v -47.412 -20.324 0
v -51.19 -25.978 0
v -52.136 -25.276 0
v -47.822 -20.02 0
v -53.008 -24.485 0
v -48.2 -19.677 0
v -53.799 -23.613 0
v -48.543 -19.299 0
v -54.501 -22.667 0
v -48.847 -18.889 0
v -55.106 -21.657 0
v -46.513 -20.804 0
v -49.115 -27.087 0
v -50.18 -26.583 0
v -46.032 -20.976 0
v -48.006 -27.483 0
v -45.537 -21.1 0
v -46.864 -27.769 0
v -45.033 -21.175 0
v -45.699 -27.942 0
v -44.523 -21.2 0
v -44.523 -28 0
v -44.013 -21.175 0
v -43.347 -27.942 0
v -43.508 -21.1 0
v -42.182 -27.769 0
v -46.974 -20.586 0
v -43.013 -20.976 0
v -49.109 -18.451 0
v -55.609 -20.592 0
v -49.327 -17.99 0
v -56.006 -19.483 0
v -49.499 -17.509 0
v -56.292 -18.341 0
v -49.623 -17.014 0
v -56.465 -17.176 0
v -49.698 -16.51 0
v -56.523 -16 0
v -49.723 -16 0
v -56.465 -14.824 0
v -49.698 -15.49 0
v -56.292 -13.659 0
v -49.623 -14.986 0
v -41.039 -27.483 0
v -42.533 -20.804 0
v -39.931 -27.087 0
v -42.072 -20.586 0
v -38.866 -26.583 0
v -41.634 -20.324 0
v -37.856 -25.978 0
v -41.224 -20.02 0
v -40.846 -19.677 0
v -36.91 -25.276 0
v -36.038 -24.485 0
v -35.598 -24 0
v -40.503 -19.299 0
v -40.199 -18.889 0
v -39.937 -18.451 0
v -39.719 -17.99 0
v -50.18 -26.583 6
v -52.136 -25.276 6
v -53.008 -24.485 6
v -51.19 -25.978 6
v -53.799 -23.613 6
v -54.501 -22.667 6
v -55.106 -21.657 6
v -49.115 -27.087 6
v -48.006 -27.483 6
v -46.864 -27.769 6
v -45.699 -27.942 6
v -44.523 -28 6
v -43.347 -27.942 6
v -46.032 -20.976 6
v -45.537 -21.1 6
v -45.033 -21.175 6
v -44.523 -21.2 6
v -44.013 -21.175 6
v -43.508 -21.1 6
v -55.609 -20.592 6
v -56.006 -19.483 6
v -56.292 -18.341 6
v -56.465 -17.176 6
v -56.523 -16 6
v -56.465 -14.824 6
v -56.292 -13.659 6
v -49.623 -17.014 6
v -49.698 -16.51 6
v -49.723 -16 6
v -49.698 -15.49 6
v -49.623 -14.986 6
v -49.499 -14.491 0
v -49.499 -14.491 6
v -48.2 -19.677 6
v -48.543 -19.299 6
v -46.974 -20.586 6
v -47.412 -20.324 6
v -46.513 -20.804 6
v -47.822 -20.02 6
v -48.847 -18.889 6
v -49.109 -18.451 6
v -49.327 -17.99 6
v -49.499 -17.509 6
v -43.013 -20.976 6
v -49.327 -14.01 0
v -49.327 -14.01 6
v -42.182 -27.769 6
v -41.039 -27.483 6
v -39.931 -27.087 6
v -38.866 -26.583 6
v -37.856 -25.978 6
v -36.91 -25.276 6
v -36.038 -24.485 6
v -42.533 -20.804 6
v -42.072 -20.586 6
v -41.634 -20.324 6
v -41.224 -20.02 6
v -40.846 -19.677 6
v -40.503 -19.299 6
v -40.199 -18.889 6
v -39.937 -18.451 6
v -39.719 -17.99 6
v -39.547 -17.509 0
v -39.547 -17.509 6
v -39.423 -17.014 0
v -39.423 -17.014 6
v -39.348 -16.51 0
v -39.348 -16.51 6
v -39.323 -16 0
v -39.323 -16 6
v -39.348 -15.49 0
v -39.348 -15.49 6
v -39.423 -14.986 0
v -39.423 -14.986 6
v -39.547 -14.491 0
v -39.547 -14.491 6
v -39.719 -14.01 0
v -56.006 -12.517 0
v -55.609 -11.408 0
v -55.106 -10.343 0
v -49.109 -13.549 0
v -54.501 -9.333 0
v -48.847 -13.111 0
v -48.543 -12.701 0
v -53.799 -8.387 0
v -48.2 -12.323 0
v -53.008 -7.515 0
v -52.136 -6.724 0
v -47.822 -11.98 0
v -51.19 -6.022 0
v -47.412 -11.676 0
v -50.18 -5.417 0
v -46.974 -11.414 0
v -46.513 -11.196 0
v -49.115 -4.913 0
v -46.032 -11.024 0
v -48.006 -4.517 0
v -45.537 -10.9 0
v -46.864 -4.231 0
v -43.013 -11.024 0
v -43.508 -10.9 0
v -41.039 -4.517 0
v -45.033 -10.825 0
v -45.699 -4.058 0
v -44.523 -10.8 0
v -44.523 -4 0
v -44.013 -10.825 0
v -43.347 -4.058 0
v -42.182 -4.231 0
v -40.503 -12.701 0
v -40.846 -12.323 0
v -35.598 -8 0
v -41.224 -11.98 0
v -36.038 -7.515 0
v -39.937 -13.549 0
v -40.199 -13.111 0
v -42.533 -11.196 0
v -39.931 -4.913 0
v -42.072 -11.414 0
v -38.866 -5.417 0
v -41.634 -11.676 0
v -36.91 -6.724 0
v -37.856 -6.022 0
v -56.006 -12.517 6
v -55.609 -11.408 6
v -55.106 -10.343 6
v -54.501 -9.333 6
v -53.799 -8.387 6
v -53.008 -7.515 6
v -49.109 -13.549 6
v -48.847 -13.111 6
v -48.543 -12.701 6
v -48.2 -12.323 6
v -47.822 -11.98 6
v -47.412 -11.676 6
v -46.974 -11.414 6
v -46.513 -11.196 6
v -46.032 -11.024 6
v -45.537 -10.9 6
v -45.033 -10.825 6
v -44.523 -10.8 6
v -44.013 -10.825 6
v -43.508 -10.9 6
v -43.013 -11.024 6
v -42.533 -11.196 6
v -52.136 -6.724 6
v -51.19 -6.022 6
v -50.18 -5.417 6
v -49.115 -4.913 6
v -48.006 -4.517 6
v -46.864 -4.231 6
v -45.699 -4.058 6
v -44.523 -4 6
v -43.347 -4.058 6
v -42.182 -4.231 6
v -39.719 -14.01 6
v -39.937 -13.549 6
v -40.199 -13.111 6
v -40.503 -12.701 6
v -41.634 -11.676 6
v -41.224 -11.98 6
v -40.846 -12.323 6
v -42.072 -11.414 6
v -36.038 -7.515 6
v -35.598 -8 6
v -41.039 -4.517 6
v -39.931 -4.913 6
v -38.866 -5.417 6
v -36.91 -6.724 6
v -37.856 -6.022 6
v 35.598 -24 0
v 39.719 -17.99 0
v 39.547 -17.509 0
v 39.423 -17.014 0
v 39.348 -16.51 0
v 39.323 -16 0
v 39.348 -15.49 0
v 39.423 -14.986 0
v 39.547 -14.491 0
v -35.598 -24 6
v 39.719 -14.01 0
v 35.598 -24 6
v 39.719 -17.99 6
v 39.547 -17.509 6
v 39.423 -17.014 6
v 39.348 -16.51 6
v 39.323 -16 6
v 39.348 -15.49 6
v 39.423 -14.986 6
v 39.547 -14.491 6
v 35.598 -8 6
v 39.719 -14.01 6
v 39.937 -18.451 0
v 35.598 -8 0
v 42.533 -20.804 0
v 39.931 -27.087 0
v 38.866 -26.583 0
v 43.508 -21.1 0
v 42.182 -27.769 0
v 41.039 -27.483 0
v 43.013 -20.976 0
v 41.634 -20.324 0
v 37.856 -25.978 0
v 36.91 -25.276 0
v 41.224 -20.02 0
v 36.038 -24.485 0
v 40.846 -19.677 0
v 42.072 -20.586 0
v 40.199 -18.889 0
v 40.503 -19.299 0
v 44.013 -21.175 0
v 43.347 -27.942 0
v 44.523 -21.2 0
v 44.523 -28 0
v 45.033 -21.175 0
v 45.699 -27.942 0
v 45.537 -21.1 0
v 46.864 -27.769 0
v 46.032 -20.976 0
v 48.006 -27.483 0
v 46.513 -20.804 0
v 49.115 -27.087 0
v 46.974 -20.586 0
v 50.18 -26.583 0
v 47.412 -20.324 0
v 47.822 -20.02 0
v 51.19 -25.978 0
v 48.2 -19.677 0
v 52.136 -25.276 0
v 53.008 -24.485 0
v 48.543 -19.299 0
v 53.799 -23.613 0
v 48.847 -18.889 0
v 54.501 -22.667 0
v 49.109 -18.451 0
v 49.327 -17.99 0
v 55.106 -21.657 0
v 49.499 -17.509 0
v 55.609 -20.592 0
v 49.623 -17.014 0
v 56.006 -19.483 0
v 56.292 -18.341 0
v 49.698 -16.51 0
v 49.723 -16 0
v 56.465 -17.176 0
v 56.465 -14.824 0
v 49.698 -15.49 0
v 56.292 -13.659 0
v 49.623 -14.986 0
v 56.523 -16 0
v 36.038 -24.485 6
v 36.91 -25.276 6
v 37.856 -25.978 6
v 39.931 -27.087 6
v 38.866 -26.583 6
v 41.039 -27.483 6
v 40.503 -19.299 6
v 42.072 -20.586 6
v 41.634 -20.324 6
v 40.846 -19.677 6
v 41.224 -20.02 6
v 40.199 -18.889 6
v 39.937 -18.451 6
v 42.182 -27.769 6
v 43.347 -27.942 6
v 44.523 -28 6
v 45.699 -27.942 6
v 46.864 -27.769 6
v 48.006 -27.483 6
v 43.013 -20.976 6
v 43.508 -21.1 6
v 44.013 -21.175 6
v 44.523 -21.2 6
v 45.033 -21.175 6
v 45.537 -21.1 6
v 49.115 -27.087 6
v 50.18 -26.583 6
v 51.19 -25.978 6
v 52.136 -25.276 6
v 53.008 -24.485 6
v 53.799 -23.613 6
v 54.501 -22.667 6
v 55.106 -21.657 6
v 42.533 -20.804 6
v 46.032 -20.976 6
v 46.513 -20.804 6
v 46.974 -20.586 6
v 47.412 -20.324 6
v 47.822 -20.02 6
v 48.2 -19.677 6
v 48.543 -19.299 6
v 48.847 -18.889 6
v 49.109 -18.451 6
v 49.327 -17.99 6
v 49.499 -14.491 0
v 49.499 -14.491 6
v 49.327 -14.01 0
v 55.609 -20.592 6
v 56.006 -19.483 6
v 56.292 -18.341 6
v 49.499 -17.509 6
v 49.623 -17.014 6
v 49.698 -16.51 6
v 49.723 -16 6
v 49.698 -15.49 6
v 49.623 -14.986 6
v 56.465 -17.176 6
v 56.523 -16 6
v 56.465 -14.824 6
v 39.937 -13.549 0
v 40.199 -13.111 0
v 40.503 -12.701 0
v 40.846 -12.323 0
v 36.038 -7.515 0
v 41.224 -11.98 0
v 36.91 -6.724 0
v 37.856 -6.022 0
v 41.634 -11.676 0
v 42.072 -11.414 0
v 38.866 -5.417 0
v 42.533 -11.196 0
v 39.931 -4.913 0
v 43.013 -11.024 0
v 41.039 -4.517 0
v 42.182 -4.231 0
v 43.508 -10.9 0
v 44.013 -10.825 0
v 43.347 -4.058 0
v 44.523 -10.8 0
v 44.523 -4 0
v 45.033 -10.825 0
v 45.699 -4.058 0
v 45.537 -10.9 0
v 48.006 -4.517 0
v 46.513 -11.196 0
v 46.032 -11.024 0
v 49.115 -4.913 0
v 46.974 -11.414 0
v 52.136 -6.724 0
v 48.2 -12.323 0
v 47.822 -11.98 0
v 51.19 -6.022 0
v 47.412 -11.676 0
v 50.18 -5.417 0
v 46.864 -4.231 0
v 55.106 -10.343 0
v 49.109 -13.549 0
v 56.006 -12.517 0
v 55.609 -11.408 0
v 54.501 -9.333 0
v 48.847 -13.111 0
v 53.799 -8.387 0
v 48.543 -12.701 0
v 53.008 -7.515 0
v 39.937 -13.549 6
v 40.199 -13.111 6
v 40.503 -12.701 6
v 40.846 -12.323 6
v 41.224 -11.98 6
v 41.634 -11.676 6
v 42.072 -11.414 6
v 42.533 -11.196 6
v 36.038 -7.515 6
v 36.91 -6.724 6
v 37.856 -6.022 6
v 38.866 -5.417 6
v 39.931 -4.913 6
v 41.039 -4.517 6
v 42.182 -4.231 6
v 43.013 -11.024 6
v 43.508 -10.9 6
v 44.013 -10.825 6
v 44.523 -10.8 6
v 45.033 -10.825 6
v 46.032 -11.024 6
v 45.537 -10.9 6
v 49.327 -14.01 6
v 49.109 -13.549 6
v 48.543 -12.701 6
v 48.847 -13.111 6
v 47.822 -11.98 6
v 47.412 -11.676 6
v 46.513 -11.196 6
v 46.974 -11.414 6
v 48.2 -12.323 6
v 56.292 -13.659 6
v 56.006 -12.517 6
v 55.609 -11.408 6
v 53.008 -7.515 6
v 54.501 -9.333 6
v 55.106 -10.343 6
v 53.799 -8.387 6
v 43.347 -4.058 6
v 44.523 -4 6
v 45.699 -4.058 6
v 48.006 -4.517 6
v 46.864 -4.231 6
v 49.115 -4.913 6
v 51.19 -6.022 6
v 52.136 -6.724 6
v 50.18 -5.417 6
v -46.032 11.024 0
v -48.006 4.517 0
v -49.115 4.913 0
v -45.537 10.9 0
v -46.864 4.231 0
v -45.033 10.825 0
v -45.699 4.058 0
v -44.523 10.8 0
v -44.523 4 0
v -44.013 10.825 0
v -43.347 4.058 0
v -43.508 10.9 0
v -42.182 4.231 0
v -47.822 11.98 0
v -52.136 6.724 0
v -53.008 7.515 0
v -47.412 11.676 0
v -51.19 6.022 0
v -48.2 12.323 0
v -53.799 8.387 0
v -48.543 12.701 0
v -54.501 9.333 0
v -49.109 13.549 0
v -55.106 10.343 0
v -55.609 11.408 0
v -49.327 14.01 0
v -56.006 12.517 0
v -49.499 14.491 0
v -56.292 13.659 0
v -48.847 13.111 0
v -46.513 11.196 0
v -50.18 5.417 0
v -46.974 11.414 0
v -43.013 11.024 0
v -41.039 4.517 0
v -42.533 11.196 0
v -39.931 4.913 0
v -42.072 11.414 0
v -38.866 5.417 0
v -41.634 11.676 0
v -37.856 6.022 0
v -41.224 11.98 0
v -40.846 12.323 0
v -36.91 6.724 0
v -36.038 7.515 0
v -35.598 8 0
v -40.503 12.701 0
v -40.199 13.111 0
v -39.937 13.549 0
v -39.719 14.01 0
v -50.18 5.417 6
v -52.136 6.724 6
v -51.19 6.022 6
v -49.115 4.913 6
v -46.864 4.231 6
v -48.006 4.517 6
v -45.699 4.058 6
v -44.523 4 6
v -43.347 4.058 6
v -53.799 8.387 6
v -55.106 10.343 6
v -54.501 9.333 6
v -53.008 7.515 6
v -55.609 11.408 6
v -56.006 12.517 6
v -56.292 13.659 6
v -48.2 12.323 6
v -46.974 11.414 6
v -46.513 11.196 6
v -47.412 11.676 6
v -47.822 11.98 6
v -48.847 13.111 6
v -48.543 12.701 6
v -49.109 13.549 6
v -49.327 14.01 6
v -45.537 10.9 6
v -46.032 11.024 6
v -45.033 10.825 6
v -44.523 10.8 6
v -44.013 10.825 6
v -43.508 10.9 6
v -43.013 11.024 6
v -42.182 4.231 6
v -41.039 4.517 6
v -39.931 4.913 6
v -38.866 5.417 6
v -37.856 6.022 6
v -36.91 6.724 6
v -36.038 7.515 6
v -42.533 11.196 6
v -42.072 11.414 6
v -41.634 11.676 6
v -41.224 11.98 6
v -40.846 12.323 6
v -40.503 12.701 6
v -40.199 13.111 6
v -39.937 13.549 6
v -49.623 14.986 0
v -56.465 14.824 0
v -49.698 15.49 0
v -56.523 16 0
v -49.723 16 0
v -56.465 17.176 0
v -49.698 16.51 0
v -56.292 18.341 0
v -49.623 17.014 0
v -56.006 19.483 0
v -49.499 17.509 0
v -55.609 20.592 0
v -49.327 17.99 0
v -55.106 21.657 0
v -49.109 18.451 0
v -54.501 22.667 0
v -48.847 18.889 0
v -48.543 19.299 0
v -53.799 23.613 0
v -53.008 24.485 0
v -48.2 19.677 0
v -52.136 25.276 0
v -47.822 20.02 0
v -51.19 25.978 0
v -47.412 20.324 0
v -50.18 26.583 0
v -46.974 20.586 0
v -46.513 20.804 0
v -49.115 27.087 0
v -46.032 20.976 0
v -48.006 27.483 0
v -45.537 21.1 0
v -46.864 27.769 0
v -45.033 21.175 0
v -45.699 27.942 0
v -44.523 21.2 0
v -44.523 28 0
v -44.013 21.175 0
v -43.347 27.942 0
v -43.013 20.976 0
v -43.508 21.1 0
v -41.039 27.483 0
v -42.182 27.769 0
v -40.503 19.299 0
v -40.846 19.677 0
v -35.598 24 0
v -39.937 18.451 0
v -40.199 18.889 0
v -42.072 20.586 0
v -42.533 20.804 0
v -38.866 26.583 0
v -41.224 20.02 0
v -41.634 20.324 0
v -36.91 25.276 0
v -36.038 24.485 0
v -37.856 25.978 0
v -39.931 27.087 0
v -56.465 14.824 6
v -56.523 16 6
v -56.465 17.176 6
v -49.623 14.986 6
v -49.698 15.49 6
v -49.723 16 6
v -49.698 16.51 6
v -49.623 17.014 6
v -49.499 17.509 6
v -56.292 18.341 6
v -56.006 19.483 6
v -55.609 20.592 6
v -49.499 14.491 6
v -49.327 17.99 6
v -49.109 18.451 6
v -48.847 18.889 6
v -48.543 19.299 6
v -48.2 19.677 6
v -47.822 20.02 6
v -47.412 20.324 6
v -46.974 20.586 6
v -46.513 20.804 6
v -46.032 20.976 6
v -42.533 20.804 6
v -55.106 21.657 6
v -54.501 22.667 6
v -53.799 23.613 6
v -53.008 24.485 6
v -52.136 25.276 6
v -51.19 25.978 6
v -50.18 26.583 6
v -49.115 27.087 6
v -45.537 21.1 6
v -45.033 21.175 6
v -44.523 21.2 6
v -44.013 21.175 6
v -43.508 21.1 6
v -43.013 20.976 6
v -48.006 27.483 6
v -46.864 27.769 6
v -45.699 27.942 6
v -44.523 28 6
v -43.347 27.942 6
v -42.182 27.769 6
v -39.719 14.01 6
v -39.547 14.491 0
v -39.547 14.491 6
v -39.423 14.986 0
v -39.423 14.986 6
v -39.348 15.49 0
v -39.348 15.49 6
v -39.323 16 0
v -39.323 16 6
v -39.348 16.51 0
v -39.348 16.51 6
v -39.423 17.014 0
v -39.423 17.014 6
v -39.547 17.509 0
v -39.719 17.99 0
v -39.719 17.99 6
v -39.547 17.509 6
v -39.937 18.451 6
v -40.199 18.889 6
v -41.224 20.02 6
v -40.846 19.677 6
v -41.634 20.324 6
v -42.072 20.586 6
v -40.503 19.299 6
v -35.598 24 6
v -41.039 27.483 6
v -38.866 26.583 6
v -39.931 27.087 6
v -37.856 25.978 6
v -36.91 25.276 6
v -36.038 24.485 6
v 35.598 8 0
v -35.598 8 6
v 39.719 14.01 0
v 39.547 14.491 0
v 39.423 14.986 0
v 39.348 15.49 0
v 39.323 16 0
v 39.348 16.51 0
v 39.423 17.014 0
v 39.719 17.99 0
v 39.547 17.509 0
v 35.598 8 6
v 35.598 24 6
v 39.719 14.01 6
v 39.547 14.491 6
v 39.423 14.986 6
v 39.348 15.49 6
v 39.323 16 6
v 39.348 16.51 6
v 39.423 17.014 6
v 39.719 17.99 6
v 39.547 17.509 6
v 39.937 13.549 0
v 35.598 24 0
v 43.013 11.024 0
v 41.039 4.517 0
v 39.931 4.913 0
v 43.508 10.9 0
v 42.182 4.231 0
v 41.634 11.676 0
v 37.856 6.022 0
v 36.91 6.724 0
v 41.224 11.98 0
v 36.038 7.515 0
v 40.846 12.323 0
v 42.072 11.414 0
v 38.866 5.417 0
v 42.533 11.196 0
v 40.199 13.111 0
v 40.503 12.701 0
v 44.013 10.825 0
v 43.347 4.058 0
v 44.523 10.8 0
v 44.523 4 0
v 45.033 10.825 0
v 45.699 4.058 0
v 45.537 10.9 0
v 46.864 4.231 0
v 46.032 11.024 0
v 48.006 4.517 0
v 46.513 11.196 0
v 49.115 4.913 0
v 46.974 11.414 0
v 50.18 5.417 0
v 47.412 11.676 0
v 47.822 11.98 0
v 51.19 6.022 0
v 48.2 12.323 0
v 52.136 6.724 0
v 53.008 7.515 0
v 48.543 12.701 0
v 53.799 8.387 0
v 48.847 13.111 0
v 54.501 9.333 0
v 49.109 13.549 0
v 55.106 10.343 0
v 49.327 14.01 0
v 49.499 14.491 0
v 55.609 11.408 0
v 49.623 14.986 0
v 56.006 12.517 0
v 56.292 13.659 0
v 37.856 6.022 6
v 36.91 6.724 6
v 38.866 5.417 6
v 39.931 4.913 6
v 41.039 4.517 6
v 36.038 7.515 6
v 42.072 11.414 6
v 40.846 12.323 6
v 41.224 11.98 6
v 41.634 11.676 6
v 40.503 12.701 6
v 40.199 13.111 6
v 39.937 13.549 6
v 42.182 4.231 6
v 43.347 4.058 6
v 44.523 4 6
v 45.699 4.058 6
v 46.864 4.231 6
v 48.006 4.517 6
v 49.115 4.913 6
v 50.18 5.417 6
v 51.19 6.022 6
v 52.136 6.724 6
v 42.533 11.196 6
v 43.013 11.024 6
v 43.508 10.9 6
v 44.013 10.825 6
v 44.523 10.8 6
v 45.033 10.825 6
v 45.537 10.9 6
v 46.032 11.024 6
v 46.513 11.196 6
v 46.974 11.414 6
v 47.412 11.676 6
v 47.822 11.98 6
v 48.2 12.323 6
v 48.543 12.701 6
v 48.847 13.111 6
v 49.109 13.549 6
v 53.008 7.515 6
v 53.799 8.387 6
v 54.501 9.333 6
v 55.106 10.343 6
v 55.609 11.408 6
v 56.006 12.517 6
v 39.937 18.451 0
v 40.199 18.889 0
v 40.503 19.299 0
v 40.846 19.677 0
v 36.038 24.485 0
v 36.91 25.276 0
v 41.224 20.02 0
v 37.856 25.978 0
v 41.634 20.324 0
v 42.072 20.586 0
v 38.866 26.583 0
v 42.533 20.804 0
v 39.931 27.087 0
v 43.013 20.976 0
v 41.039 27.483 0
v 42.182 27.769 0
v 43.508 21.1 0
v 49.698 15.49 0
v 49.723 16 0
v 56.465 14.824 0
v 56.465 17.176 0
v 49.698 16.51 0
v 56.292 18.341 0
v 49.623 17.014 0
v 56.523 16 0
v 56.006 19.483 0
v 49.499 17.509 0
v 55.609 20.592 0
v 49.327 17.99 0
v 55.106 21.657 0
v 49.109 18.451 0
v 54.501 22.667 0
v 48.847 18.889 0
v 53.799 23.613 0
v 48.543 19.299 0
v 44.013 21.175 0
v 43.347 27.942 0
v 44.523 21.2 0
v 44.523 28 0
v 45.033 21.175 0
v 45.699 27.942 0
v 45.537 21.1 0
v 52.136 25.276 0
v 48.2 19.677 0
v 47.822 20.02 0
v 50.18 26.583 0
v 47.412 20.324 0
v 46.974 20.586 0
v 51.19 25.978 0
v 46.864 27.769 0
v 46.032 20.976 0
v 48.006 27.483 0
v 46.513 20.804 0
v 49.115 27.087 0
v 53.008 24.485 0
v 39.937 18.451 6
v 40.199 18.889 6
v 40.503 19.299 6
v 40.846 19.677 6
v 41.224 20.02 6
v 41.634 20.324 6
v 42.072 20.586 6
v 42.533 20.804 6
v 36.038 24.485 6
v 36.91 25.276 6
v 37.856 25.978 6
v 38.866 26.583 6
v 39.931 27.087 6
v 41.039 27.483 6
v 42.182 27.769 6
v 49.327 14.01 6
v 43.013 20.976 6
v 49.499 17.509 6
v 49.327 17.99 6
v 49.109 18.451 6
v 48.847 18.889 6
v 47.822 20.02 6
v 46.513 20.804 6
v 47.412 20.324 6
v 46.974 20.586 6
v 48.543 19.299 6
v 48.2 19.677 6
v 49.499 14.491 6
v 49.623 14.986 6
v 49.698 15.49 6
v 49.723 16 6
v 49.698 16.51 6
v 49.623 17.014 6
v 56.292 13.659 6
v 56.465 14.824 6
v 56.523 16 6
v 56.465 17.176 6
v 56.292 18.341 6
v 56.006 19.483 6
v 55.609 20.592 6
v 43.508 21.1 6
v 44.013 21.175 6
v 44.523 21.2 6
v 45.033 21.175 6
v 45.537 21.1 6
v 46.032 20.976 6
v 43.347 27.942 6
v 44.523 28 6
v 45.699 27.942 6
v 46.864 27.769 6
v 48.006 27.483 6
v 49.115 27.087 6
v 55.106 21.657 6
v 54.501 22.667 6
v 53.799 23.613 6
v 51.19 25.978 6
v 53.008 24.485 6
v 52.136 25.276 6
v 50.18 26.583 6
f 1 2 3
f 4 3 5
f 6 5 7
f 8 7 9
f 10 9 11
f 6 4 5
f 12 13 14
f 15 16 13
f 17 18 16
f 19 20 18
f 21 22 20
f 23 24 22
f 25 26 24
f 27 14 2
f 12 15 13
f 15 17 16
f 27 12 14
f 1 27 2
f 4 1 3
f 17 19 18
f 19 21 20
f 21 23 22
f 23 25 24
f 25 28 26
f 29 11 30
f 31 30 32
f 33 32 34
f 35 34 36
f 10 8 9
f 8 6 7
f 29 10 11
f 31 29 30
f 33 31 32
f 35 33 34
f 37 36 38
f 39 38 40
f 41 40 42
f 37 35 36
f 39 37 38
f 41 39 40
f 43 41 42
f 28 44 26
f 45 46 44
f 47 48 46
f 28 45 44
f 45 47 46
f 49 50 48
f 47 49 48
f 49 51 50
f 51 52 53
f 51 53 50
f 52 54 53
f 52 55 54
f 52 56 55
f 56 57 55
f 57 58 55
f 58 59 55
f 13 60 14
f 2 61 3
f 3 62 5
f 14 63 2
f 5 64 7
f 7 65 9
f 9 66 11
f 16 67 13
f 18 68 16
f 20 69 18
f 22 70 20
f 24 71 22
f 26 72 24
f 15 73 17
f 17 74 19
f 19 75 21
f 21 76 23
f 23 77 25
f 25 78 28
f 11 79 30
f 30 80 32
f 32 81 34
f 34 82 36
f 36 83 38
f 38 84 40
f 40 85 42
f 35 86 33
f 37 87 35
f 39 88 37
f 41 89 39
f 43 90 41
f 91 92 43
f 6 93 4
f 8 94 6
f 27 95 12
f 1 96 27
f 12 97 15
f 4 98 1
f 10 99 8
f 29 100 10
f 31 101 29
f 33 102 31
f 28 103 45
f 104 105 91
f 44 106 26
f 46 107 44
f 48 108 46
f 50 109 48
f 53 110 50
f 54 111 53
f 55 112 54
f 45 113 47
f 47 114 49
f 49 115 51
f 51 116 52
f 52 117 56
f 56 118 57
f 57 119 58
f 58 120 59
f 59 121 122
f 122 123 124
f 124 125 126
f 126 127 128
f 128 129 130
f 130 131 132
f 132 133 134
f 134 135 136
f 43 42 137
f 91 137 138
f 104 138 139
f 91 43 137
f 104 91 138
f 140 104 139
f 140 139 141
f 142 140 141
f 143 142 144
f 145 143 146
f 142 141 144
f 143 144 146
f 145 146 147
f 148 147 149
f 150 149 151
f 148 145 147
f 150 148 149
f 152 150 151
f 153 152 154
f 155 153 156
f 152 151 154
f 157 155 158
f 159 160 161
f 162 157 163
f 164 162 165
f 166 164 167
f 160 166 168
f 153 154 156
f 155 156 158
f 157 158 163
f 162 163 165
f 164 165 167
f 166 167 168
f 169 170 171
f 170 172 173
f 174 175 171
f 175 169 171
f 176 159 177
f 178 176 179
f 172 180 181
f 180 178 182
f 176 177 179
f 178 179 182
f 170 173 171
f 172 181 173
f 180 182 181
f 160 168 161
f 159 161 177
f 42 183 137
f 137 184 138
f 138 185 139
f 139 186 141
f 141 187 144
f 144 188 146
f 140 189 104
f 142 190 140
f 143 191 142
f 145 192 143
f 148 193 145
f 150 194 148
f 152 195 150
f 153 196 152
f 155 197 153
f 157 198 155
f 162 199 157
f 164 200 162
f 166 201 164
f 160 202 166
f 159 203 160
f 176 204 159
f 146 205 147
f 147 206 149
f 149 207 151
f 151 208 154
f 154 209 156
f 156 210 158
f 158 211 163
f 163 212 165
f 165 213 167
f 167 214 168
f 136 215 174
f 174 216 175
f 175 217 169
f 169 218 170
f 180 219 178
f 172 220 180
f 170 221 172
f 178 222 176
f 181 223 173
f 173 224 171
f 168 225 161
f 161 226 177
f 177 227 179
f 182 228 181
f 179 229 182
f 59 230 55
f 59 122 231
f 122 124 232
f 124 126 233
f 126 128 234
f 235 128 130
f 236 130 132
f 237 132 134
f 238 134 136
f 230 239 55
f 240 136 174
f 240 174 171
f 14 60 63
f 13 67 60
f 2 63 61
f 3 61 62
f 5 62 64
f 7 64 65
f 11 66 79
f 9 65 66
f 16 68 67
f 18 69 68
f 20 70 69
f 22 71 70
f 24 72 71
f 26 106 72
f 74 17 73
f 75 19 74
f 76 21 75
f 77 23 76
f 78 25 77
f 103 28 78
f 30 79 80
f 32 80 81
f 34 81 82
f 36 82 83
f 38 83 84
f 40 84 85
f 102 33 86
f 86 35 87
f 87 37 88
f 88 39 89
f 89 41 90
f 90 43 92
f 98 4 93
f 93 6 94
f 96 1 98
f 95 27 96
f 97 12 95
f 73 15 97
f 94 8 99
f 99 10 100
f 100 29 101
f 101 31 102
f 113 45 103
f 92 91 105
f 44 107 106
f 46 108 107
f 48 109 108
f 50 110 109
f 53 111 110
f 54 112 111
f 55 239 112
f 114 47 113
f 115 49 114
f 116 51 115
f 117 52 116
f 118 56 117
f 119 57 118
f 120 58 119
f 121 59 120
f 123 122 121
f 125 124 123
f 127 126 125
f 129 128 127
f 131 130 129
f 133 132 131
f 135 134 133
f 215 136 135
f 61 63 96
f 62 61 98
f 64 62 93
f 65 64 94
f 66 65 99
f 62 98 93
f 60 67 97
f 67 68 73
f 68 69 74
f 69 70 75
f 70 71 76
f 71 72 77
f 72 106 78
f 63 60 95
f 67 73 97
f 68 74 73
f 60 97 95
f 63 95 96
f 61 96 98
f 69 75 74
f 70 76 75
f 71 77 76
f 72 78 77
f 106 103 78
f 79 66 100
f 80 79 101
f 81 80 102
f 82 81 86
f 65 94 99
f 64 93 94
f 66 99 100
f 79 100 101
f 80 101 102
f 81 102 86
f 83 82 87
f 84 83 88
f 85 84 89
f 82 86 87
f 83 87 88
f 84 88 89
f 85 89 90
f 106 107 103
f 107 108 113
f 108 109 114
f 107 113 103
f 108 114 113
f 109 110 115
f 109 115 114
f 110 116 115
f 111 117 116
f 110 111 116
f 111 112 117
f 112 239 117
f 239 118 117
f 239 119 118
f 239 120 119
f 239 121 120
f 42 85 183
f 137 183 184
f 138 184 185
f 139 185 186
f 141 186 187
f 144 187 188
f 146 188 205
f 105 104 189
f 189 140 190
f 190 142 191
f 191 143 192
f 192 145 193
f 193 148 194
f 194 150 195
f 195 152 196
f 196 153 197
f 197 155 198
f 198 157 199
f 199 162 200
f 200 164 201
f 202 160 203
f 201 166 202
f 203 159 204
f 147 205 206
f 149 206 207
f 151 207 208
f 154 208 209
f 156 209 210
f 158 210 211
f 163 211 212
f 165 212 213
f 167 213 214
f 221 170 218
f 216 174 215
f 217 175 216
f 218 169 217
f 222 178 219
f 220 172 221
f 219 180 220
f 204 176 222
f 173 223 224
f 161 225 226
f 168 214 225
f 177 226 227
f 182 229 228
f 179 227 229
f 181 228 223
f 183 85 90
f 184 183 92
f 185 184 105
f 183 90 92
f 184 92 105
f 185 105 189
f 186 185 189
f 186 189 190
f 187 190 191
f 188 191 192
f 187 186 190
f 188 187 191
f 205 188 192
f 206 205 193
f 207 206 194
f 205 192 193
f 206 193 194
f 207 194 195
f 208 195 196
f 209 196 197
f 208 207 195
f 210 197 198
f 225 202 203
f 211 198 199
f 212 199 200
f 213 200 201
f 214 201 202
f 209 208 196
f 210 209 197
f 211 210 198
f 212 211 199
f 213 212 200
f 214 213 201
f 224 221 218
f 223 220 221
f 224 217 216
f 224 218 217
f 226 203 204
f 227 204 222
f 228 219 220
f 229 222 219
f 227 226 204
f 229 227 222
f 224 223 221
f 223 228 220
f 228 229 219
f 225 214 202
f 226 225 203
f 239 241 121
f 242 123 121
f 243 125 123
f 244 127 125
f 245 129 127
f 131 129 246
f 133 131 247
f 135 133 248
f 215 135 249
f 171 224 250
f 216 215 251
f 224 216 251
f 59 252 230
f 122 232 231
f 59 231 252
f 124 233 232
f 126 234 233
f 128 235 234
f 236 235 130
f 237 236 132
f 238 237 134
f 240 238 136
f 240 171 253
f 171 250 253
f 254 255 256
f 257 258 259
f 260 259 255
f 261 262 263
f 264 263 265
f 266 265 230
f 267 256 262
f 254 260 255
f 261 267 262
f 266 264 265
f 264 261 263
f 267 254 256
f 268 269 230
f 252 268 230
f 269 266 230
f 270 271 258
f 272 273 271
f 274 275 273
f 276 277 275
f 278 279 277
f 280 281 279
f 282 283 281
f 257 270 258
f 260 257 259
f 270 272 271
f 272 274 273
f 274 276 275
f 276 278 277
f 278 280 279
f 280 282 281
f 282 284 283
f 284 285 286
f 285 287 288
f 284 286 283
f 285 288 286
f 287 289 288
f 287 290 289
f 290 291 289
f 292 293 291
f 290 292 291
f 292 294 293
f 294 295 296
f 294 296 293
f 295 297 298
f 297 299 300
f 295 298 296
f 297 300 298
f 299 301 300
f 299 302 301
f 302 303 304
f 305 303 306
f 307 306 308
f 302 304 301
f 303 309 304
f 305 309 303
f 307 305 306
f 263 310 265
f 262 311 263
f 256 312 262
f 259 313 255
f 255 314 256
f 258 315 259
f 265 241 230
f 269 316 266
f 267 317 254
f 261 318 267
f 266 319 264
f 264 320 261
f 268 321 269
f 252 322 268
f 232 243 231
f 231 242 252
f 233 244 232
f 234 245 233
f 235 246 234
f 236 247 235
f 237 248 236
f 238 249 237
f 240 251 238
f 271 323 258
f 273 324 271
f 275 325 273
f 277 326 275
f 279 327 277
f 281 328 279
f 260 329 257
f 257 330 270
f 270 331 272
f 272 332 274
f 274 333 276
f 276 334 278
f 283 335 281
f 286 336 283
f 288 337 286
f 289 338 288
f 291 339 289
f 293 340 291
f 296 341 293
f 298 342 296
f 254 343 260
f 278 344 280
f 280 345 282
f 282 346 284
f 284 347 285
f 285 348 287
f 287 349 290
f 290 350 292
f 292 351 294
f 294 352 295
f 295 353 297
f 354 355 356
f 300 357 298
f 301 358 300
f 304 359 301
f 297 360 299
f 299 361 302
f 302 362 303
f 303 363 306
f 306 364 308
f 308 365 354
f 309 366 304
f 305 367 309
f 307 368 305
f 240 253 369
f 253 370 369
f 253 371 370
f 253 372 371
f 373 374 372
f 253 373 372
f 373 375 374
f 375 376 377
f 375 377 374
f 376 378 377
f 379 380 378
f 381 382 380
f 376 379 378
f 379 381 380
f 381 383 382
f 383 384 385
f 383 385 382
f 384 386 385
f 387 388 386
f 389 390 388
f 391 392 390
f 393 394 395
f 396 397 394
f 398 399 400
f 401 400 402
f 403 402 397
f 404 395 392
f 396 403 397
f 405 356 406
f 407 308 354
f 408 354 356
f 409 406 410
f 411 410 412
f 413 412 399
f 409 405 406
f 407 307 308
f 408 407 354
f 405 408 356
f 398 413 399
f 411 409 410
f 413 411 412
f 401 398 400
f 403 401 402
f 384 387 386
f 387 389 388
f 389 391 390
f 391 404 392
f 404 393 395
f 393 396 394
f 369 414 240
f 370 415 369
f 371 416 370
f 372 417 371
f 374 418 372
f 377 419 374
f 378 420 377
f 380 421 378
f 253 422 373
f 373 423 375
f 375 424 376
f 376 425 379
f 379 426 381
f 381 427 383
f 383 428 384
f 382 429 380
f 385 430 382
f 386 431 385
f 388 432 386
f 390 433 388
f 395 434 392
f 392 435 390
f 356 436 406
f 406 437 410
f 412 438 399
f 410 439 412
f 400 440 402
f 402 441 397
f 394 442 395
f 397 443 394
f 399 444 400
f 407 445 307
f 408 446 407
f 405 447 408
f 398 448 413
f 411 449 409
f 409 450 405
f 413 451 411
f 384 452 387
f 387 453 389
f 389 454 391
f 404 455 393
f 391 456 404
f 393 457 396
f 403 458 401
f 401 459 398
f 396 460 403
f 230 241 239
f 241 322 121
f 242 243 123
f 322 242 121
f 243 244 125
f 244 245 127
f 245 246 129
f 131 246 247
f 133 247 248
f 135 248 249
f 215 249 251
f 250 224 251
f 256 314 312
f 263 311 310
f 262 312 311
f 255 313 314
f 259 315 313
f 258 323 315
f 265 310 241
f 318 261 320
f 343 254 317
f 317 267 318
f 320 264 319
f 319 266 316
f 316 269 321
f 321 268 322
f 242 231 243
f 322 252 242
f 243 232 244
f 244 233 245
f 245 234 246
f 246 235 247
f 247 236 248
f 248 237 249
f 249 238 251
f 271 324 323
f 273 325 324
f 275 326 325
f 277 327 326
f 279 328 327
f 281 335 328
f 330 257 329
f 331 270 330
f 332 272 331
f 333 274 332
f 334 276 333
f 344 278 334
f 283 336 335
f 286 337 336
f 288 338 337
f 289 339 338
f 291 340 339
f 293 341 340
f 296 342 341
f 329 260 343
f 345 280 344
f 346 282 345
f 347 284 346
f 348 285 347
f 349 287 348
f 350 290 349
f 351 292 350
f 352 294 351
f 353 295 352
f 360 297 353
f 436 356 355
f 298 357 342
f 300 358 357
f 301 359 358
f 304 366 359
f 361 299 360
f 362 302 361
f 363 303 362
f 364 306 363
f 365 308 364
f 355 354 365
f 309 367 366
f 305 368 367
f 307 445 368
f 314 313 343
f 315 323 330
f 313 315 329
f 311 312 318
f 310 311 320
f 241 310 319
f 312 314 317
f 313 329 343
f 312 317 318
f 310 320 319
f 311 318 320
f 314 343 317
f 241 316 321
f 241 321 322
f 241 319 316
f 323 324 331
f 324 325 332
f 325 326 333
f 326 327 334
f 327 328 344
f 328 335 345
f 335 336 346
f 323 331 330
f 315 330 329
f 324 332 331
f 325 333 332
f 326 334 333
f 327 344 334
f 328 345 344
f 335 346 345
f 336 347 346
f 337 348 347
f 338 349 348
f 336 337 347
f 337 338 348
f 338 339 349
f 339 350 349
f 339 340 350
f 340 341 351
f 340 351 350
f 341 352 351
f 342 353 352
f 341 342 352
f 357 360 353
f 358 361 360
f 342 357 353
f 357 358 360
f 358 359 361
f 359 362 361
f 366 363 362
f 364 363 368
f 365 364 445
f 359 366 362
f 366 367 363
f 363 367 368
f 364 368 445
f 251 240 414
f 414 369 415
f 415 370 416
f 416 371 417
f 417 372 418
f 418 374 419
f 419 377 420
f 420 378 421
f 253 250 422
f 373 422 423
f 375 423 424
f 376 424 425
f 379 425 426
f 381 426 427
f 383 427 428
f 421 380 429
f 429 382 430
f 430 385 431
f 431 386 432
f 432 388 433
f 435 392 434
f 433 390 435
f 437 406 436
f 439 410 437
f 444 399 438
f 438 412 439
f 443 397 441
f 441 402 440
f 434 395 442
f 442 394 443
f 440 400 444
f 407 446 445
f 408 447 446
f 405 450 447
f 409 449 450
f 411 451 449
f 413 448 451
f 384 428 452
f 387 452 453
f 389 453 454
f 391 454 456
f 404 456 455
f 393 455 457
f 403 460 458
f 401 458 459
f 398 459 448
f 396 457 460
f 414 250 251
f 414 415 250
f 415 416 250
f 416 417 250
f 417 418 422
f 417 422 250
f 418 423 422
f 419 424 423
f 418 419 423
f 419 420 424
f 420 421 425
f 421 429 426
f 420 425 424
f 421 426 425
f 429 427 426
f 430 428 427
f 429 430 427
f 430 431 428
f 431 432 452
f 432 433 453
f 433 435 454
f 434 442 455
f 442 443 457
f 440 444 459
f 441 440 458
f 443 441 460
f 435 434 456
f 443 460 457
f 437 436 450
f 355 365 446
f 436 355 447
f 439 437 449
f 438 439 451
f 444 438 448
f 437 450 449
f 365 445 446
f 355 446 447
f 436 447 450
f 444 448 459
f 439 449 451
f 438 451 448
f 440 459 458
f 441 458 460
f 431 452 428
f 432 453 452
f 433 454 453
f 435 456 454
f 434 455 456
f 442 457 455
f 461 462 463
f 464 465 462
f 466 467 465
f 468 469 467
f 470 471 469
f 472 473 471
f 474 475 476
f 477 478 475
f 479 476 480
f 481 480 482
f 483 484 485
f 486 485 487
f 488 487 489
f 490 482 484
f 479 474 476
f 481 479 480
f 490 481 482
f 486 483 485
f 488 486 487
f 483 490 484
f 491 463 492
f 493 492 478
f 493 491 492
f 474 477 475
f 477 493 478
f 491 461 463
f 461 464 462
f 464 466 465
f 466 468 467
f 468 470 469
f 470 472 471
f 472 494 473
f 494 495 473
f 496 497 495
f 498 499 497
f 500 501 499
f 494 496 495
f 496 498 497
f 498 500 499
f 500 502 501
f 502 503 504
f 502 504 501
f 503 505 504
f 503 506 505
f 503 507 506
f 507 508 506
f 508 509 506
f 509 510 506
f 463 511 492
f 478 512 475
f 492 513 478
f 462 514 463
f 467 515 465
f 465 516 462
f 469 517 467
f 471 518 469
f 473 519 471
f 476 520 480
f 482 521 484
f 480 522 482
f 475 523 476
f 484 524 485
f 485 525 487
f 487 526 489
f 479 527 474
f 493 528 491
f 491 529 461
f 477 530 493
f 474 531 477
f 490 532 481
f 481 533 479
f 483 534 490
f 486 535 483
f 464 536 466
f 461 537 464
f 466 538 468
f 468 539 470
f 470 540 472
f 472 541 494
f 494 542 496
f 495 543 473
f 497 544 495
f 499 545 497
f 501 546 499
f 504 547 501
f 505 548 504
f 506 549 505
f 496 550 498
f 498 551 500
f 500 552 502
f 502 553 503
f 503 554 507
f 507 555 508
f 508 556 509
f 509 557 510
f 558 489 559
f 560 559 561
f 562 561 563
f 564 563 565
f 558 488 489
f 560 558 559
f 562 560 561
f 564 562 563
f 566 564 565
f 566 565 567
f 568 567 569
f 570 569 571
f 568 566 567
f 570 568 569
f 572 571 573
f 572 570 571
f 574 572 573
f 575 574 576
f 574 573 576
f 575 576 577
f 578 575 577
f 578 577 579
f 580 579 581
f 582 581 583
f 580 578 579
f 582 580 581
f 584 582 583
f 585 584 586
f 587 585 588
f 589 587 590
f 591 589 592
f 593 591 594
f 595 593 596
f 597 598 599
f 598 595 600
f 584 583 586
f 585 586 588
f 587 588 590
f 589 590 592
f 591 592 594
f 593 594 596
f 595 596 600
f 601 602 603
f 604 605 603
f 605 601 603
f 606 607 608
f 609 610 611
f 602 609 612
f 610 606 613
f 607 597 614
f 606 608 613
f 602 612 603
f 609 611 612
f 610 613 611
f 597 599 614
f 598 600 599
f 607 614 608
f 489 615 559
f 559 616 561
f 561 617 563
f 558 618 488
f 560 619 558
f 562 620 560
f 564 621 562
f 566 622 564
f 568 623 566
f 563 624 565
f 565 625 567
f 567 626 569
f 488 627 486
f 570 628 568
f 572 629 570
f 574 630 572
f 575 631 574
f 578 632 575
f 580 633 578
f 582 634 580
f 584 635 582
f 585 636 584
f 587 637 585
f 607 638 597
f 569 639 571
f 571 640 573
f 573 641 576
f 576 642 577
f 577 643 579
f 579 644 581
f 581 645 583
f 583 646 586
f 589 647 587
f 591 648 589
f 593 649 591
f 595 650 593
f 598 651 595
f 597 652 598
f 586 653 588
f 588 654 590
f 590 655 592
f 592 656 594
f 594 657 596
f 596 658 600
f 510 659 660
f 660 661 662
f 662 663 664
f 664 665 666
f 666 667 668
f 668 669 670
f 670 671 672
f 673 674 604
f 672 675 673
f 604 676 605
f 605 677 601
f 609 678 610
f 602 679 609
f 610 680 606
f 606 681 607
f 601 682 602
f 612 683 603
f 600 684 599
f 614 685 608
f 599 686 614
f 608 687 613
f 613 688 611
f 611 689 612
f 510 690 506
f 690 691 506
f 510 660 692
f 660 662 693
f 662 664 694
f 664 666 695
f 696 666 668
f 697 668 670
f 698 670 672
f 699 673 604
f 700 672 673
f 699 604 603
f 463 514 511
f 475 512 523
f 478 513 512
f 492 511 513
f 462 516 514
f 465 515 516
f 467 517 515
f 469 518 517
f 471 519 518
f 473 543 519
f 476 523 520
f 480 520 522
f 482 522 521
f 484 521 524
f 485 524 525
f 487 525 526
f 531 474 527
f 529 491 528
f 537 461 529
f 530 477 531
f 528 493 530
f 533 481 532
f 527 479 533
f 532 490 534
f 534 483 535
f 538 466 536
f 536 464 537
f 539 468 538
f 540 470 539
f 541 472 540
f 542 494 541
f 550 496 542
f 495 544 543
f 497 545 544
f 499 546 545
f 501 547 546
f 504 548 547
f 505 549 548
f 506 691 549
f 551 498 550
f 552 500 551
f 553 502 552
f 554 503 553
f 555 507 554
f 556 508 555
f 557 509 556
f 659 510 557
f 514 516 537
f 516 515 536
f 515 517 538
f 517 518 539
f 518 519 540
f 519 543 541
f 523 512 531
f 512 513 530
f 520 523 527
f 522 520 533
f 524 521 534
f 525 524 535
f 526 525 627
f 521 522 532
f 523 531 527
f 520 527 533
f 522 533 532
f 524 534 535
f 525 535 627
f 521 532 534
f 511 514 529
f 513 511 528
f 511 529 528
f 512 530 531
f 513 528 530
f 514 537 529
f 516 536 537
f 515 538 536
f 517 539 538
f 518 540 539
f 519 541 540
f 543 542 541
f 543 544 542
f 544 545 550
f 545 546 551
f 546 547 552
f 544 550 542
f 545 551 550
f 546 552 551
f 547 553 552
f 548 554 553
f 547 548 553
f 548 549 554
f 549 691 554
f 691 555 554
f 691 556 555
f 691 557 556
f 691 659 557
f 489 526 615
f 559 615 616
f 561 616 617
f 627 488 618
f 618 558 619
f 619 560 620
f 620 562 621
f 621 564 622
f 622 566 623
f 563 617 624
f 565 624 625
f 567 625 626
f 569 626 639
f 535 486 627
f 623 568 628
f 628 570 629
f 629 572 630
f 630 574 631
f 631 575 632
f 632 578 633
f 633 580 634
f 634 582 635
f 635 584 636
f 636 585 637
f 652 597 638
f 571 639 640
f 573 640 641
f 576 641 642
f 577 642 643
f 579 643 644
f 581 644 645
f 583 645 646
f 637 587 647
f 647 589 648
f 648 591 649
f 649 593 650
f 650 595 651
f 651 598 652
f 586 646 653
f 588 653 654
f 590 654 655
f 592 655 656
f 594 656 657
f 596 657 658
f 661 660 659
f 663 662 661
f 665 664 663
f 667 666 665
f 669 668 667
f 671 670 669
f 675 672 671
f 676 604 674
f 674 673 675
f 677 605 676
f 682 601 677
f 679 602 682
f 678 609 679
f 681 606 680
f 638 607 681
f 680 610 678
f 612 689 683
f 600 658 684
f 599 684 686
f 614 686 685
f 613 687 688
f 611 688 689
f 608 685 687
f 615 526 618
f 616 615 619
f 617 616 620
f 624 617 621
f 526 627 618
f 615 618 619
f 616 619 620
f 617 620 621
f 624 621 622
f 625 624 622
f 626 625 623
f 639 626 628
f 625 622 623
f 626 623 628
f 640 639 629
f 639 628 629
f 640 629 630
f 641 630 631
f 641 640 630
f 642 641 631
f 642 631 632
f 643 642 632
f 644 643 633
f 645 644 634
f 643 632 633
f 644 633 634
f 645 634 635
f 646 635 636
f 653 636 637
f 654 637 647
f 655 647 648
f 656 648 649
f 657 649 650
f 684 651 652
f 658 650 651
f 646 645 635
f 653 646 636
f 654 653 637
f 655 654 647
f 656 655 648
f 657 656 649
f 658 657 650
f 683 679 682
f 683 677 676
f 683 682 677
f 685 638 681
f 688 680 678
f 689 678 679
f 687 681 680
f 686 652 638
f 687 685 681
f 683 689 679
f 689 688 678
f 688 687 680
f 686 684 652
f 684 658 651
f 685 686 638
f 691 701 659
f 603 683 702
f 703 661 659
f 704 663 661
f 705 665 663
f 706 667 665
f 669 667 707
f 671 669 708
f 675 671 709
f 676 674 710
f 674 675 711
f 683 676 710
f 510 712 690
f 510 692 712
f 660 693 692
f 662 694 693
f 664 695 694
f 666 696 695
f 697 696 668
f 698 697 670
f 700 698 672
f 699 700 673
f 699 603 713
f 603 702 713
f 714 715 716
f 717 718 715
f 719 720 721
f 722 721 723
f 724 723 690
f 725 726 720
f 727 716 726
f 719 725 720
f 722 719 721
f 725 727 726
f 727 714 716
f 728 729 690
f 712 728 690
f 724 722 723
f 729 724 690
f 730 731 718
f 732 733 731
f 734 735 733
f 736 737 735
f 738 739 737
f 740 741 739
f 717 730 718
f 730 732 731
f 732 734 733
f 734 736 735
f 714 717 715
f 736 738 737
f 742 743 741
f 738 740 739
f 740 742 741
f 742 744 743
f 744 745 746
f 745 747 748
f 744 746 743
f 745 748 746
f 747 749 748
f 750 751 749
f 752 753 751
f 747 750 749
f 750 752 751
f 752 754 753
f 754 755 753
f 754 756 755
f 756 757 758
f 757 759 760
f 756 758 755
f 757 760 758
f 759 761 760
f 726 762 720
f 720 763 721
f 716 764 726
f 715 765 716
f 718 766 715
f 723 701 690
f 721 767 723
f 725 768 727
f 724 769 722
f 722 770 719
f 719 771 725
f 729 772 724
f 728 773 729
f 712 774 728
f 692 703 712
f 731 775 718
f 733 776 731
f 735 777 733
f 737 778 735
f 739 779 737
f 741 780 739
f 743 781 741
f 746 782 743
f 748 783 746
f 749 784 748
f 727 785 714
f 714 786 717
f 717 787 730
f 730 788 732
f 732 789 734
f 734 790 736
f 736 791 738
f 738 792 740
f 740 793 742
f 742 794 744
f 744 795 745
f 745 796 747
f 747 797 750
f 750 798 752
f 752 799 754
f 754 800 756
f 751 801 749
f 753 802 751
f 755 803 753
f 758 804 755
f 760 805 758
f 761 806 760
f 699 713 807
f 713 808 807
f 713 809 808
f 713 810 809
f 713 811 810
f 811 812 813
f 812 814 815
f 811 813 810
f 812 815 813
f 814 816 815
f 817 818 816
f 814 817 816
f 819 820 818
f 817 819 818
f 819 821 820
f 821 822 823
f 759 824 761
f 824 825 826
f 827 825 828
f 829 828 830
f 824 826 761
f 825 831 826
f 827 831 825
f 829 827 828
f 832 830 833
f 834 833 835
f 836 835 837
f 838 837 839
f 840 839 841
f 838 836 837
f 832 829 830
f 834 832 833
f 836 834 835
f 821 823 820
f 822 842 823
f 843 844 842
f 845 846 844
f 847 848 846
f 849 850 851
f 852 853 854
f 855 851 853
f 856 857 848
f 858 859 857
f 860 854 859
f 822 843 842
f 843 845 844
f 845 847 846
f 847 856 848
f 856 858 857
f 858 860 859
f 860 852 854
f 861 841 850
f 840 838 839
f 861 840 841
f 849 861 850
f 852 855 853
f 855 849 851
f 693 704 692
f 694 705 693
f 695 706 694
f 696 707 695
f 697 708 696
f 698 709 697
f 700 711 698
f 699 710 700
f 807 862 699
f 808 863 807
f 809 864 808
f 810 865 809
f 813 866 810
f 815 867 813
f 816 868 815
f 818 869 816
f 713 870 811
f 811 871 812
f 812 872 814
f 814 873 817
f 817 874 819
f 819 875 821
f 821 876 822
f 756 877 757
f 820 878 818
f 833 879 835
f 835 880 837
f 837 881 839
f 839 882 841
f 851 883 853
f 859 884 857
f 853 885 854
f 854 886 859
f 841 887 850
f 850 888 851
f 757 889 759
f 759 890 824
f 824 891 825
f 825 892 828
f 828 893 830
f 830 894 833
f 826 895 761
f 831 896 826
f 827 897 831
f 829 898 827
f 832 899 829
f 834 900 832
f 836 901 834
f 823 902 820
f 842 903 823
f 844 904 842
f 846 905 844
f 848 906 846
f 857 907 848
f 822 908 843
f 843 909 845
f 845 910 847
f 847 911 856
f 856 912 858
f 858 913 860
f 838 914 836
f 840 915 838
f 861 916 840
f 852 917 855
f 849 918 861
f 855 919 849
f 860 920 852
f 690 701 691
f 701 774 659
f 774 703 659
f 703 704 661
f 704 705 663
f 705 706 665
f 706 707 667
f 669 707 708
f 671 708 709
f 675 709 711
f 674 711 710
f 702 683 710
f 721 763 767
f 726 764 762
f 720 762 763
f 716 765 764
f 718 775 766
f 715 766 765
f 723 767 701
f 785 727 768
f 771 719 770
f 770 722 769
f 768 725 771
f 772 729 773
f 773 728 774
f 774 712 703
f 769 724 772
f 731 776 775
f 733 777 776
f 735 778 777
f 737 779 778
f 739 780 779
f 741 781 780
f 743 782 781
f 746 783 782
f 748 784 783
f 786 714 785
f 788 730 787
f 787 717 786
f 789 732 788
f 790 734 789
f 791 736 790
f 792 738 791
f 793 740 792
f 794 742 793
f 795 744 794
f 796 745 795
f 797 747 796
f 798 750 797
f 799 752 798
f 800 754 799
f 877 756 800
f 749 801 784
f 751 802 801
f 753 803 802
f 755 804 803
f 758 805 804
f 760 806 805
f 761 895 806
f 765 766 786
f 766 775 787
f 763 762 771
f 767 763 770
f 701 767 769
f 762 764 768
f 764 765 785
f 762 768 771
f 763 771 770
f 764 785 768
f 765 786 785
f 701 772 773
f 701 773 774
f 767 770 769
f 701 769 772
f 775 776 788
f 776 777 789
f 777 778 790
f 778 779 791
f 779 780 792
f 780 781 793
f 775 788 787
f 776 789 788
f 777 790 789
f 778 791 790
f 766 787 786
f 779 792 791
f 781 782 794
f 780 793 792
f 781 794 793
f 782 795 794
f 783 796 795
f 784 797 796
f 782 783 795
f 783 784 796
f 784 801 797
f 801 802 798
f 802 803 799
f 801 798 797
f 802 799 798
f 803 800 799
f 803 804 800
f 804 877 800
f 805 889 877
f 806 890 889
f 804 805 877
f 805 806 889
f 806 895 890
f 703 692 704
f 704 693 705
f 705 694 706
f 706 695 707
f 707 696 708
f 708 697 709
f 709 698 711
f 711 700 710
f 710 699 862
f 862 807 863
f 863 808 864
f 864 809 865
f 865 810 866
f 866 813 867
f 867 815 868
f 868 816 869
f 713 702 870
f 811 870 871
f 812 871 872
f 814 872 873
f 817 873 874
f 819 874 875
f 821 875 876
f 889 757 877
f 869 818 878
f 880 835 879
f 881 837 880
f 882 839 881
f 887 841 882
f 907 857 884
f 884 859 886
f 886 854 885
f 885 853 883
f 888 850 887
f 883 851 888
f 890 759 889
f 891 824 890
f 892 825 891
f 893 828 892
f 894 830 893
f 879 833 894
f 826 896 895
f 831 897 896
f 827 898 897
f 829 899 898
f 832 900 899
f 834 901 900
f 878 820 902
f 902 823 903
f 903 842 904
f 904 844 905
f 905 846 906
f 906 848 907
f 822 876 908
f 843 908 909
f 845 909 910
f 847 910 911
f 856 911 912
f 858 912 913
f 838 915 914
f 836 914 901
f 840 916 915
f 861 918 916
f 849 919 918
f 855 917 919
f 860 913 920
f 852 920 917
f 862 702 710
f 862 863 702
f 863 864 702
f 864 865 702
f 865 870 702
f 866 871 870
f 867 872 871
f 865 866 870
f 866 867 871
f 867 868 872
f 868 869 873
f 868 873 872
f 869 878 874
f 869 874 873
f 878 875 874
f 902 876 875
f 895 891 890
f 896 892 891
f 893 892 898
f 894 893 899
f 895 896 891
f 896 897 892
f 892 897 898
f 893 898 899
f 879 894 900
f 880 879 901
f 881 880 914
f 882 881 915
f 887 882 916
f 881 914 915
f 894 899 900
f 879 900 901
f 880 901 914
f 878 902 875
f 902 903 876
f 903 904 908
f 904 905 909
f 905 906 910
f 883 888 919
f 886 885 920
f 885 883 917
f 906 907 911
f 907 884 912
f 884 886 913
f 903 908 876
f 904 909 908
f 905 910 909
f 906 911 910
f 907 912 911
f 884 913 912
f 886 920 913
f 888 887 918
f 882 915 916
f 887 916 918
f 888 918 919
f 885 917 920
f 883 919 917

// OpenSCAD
/*
  Chick Roost A-Frame Side Connector — retrofit part only

  Designed specifically for the geometry in:
    roosting_bar_fixed(1).scad

  PURPOSE
  -------
  Print TWO identical connectors. One slides onto the two exposed LOWER
  roost-bar tenons on the left side of the stand; the other slides onto the
  corresponding two tenons on the right side. This ties the two legs on each
  A-frame side together and greatly reduces leg splay/wobble without using
  the original wedge pins.

  IMPORTANT
  ---------
  The round holes do NOT go around the rectangular legs. They fit over the
  two 10 mm round lower-bar tenons already present in your printed model.

  Default export lays out TWO connectors flat on the print bed.
*/

/* [Export] */
part_to_export = "pair"; // [pair:Print two connectors, single:Print one connector]

/* [Copied exactly from your existing roost model] */
top_bar_height   = 150;
lower_bar_height = 50;
leg_angle         = 24;
tenon_dia          = 10.0;
fit_tolerance      = 0.25;

/* [Connector] */
connector_thickness = 6.0;   // Y thickness when installed; Z thickness when printed
connector_end_dia   = 24.0;  // material around each hole
connector_bridge_h  = 16.0;  // narrow center bridge height

// Same nominal hole fit as the existing legs.
connector_hole_dia = 10.40; // validated clearance over 10 mm tenon + crush ribs

// Exact lower-roost geometry from the source model.
dist_apex_to_lower = (top_bar_height - lower_bar_height) / cos(leg_angle);
lower_x = dist_apex_to_lower * sin(leg_angle);
connector_hole_spacing = 2 * lower_x;  // 89.045737... mm center-to-center

$fn = 64;

if (part_to_export == "pair") {
    // Two identical braces, flat and separated for easy slicing.
    translate([0, -16, 0]) side_connector();
    translate([0,  16, 0]) side_connector();
} else {
    side_connector();
}

// ============================================================
// SIDE CONNECTOR
// Printed flat in XY, thickness along +Z.
// Installed vertically at each outer side of the A-frame.
// ============================================================
module side_connector() {
    linear_extrude(height = connector_thickness, convexity = 4)
    difference() {
        connector_outline_2d();

        // Exact centers of the two lower-roost tenons.
        translate([-connector_hole_spacing / 2, 0])
            circle(d = connector_hole_dia);
        translate([ connector_hole_spacing / 2, 0])
            circle(d = connector_hole_dia);
    }
}

module connector_outline_2d() {
    end_r = connector_end_dia / 2;
    bridge_r = connector_bridge_h / 2;

    union() {
        // Smooth narrow bridge between the two ends.
        hull() {
            translate([-connector_hole_spacing / 2, 0]) circle(r = bridge_r);
            translate([ connector_hole_spacing / 2, 0]) circle(r = bridge_r);
        }

        // Reinforced round ends around each tenon hole.
        translate([-connector_hole_spacing / 2, 0]) circle(r = end_r);
        translate([ connector_hole_spacing / 2, 0]) circle(r = end_r);
    }
}
